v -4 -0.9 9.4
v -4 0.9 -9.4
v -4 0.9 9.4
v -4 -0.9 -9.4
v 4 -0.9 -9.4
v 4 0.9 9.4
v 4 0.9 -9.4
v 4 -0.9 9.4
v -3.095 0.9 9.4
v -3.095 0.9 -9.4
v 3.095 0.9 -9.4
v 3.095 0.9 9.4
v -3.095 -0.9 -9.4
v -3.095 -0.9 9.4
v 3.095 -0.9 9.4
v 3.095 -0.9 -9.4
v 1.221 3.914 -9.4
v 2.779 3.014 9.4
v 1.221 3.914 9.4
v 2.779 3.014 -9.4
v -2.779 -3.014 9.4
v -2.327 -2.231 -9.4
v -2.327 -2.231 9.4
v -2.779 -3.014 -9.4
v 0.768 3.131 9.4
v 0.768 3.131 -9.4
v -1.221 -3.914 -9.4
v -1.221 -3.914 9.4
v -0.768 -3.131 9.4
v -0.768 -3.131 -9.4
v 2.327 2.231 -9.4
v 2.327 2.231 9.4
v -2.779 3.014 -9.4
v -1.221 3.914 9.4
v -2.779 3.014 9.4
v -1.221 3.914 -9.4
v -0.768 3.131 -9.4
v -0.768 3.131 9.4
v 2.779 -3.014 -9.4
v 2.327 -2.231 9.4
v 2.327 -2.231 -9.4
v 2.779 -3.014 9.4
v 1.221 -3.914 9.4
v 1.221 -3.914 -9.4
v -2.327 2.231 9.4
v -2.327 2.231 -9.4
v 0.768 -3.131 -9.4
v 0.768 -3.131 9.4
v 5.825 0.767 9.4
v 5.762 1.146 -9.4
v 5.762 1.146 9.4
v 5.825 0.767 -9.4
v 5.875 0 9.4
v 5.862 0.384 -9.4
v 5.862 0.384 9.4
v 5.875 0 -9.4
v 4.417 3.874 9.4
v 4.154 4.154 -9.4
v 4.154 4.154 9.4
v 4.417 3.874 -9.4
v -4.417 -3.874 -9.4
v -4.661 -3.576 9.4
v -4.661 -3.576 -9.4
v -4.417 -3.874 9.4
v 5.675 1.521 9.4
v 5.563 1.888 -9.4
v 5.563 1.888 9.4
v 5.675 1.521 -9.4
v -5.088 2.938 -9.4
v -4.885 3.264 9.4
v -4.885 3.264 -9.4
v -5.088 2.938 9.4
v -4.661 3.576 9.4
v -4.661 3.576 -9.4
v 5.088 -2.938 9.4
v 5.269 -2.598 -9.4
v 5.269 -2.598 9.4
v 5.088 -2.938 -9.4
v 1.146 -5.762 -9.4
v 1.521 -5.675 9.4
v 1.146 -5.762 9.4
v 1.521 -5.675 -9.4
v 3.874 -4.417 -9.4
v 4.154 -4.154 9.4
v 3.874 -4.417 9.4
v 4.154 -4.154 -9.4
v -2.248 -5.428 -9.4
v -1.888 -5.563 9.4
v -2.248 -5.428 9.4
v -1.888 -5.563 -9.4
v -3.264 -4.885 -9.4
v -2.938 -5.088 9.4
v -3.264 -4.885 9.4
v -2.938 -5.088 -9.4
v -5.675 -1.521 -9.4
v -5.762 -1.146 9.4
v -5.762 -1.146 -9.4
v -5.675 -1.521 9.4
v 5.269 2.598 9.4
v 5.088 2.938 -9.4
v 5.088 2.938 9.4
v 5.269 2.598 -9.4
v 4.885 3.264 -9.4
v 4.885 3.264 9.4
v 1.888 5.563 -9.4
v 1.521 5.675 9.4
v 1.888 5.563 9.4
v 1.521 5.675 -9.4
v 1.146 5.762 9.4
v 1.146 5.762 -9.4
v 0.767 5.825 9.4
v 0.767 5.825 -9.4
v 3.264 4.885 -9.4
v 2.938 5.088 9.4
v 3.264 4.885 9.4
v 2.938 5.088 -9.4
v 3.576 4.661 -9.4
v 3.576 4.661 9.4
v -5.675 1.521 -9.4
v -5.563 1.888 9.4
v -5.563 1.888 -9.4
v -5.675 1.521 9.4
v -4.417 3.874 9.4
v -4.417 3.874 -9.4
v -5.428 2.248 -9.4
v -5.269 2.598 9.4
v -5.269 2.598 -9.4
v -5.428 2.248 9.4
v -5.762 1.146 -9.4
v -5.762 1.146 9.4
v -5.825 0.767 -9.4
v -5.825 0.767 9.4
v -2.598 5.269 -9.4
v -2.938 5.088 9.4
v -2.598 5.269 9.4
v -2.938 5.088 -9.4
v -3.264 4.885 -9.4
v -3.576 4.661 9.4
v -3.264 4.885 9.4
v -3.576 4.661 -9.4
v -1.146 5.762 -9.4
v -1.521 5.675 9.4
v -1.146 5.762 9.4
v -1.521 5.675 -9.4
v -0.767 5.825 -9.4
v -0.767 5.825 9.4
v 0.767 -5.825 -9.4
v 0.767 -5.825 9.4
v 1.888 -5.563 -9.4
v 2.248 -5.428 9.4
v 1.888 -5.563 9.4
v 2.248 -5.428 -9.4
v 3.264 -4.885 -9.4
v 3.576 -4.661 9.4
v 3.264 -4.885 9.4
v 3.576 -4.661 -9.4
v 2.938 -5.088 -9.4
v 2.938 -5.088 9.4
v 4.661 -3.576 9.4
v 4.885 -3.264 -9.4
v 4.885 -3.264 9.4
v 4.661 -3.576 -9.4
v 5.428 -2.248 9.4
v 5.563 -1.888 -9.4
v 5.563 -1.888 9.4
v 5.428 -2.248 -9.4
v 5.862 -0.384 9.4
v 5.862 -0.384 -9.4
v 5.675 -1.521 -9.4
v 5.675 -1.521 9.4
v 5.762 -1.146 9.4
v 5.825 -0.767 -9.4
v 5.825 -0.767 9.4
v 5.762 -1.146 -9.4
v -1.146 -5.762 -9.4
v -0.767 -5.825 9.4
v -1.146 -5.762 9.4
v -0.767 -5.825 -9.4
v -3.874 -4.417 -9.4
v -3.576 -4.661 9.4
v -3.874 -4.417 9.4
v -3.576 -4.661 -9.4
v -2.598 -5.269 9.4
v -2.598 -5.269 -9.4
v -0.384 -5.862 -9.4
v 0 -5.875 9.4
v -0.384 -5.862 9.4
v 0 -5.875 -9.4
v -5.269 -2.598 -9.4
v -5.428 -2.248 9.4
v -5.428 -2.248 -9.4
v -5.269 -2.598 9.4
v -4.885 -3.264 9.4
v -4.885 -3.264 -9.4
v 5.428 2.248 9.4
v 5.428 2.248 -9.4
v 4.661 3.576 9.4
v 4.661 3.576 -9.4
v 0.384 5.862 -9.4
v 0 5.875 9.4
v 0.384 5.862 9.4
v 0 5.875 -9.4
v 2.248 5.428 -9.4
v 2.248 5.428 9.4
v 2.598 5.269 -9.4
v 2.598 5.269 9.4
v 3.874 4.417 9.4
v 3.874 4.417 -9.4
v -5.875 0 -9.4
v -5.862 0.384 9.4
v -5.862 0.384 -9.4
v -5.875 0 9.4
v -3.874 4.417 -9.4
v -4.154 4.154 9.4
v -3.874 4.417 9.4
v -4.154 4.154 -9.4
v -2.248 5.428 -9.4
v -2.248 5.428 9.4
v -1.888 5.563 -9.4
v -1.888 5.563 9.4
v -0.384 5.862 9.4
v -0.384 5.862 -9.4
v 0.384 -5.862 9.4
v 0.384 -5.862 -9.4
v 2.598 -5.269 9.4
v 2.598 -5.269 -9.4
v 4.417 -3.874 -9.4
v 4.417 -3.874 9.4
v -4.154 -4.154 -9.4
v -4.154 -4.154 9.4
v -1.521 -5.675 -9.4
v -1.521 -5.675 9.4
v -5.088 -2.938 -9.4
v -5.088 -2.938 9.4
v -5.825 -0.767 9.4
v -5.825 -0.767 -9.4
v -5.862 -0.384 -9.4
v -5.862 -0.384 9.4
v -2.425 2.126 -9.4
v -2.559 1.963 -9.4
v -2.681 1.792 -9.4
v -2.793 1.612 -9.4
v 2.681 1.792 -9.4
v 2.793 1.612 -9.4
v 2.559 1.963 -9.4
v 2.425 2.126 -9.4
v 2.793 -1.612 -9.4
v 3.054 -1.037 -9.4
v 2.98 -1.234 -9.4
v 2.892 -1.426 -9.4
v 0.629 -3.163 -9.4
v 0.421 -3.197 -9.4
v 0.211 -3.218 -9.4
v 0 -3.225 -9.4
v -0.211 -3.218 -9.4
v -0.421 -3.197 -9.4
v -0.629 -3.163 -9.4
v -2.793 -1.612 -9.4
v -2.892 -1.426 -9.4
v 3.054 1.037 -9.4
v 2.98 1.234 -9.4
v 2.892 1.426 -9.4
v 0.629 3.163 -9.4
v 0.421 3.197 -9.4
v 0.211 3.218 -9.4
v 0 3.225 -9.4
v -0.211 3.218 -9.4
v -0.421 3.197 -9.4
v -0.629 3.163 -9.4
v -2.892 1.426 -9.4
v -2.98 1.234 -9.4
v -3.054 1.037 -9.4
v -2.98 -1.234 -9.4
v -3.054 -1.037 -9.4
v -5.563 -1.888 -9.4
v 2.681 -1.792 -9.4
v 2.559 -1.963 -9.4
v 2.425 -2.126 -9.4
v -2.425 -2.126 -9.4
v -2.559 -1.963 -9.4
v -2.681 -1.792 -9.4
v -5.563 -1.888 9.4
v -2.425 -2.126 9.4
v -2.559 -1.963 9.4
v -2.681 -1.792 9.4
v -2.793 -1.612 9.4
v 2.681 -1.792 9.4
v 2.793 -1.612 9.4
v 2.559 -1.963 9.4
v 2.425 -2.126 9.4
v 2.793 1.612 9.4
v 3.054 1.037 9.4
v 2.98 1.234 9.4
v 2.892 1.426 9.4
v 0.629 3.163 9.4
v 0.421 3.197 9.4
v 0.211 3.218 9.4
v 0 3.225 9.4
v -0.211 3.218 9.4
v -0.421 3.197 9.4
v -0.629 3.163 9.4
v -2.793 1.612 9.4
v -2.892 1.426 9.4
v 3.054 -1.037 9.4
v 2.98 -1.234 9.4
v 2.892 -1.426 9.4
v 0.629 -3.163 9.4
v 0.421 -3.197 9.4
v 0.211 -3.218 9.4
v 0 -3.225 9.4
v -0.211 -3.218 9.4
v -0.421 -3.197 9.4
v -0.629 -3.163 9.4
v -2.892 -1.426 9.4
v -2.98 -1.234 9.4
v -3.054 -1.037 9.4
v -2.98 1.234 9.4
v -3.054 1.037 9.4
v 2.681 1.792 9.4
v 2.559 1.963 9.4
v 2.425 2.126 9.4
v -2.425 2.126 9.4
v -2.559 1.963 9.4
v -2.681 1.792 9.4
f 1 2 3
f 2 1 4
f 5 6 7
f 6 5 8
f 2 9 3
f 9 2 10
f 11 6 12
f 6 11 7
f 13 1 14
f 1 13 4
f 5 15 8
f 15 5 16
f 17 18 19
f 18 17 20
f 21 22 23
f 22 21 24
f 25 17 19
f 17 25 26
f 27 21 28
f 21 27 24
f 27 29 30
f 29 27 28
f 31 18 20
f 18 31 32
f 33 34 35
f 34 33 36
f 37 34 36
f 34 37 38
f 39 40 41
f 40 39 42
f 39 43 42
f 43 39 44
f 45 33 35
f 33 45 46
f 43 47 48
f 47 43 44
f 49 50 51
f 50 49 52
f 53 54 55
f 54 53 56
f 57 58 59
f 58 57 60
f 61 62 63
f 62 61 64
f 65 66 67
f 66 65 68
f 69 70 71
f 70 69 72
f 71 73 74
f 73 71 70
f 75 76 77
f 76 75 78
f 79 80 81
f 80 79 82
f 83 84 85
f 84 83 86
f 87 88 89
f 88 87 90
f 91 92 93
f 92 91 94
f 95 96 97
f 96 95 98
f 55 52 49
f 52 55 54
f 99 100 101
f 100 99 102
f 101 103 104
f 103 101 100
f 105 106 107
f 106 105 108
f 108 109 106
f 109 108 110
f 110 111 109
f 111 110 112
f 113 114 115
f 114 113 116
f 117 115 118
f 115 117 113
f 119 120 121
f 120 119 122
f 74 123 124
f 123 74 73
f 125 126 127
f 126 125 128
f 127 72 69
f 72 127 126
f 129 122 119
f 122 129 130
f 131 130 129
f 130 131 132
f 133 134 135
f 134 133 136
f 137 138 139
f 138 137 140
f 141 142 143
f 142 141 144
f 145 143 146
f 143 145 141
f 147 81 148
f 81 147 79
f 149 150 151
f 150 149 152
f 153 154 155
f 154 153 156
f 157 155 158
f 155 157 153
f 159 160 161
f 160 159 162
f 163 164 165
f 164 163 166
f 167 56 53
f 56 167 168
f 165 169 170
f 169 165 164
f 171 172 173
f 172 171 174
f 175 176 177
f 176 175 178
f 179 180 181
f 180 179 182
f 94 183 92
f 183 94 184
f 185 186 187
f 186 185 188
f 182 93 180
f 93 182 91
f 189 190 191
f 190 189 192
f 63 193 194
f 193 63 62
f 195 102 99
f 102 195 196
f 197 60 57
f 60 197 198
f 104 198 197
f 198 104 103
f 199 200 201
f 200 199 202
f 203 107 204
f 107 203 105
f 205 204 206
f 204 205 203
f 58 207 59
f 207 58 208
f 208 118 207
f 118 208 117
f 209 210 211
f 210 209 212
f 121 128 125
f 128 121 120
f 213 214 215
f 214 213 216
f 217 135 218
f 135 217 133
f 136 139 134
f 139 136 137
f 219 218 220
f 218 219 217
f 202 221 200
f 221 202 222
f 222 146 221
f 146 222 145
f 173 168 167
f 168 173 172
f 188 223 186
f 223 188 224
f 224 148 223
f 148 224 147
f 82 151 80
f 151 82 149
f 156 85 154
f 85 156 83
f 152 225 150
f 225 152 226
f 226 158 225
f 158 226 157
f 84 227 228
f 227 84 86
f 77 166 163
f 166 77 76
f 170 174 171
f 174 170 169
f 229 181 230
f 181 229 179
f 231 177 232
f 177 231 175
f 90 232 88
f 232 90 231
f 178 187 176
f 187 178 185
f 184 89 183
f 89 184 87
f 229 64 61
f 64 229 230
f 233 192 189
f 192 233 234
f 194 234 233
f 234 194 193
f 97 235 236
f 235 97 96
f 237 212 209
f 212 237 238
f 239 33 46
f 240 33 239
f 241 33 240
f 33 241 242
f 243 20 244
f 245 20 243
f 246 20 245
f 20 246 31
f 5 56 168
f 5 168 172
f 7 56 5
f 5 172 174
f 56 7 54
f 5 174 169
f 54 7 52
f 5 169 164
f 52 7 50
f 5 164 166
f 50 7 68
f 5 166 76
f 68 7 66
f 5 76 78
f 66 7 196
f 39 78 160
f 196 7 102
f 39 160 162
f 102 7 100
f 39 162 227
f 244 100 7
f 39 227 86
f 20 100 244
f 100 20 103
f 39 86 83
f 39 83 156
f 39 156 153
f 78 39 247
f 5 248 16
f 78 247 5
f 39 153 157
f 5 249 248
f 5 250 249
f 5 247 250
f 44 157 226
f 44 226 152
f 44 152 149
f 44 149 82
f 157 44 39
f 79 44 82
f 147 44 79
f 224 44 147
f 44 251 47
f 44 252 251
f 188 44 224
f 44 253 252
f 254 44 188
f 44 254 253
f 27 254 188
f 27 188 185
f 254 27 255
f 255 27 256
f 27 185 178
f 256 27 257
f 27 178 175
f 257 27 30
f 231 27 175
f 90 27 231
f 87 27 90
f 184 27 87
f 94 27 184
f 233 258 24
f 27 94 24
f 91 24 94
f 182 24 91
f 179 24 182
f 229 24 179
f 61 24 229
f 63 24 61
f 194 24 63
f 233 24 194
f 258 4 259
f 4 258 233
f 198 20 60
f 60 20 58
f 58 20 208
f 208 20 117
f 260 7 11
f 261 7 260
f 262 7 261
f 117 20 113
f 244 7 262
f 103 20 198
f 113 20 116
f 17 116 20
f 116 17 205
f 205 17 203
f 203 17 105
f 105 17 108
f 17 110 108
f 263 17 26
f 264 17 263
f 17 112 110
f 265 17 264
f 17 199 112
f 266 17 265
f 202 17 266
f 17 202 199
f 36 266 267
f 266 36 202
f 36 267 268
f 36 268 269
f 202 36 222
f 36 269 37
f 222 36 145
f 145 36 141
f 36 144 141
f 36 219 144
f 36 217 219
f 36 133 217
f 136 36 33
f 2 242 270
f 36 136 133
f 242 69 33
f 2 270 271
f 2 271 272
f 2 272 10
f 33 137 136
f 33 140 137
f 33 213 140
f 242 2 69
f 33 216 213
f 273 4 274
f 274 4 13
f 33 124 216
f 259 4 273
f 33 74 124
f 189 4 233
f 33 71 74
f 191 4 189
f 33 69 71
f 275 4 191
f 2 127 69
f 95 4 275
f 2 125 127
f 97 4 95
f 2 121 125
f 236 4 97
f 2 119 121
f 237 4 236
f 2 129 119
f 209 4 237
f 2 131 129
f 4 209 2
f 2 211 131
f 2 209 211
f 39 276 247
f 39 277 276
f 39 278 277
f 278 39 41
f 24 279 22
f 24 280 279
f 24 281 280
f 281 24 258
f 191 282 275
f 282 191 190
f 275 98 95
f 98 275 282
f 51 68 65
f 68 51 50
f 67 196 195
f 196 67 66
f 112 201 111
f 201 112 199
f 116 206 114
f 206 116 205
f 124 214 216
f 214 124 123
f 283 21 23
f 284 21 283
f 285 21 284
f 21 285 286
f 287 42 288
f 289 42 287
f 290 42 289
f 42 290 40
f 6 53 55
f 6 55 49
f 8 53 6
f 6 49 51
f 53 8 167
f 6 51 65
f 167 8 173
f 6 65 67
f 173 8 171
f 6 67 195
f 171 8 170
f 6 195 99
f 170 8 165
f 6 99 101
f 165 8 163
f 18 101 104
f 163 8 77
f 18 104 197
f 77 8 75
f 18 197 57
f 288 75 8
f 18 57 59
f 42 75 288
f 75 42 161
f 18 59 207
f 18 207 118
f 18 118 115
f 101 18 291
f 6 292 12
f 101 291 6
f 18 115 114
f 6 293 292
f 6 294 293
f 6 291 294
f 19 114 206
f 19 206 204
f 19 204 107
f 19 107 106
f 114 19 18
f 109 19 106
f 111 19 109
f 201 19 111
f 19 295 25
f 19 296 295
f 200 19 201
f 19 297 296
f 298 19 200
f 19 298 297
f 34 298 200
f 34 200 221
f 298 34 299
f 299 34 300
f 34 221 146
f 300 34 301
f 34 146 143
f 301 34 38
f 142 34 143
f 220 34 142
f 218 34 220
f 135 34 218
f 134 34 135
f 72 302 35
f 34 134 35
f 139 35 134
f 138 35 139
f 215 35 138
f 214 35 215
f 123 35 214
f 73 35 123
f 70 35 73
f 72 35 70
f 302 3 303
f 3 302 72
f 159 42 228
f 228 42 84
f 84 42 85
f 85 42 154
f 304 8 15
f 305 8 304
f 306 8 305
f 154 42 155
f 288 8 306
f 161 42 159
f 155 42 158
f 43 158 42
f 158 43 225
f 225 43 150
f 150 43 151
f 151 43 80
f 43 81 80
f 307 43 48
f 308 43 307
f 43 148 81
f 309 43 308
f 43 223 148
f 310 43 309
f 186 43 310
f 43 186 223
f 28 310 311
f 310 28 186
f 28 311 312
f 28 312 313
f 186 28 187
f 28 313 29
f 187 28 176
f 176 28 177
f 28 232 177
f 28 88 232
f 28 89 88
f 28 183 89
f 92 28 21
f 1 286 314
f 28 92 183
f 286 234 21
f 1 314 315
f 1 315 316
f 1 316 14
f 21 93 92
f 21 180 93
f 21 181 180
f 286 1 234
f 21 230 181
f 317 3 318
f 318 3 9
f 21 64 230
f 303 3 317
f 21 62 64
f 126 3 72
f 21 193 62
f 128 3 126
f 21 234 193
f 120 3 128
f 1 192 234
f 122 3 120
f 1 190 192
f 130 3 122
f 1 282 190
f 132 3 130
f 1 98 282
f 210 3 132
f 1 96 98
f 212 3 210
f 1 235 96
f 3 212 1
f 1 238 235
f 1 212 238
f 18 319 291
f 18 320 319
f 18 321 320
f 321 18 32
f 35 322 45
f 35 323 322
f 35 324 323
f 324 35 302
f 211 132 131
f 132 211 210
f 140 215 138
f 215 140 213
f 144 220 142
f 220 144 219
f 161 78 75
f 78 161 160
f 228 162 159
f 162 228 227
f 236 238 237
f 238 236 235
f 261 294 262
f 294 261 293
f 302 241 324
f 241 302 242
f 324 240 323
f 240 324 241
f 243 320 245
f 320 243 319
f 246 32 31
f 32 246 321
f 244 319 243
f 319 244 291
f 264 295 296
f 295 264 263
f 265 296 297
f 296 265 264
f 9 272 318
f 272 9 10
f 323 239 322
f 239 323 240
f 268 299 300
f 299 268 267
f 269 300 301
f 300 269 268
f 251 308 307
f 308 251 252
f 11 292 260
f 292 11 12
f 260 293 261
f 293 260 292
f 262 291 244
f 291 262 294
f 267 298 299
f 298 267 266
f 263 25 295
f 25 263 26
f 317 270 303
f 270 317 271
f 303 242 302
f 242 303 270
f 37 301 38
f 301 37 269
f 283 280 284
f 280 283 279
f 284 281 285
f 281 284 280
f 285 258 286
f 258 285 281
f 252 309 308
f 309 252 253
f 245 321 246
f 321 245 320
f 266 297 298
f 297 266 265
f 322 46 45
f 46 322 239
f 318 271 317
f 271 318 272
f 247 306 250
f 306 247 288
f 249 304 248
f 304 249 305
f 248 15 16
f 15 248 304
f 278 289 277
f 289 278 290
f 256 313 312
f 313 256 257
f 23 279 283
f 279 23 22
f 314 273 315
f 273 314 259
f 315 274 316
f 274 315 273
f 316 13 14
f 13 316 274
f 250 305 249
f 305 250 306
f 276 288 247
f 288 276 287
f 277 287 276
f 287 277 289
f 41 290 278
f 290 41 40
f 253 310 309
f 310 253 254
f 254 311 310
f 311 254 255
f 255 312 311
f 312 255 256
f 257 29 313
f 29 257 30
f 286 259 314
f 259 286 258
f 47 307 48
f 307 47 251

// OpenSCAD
// Is alternative for LM6UU holders, PETG is better then PLA.

 DiaLM6=6.45; // verify and adjust if necessary

DiaOuterLM6=11.75; 
HeightLM6= 18.8;   // = length

difference()
    {
                 
        union()
    {    
       cylinder(h=HeightLM6,d=DiaOuterLM6,center=true,$fn=96)  ;    
      
    
    
    }
    
    
  cylinder(h=HeightLM6+1,d=DiaLM6,center=true,$fn=96)  ;    
  
    
    
        for(z=[0:60:180])
        {
        rotate([0,0,z])
        
cube([8,1.8,HeightLM6+1],center=true);        //1.8
        }
        
       // some discrete funnel d 0.6 mm and 1 mm high on begin end end:
        /*
        translate([0,0,HeightLM10/2])
      cylinder(d1=DiaLM6,d2=DiaLM10+1.2,h=2.0,center=true,$fn=96)  ;    
    
        translate([0,0,-HeightLM6/2])
      cylinder(d2=DiaLM6,d1=DiaLM6+1.2,h=2.0,center=true,$fn=96)  ;
        */   
   
    
              
}       
